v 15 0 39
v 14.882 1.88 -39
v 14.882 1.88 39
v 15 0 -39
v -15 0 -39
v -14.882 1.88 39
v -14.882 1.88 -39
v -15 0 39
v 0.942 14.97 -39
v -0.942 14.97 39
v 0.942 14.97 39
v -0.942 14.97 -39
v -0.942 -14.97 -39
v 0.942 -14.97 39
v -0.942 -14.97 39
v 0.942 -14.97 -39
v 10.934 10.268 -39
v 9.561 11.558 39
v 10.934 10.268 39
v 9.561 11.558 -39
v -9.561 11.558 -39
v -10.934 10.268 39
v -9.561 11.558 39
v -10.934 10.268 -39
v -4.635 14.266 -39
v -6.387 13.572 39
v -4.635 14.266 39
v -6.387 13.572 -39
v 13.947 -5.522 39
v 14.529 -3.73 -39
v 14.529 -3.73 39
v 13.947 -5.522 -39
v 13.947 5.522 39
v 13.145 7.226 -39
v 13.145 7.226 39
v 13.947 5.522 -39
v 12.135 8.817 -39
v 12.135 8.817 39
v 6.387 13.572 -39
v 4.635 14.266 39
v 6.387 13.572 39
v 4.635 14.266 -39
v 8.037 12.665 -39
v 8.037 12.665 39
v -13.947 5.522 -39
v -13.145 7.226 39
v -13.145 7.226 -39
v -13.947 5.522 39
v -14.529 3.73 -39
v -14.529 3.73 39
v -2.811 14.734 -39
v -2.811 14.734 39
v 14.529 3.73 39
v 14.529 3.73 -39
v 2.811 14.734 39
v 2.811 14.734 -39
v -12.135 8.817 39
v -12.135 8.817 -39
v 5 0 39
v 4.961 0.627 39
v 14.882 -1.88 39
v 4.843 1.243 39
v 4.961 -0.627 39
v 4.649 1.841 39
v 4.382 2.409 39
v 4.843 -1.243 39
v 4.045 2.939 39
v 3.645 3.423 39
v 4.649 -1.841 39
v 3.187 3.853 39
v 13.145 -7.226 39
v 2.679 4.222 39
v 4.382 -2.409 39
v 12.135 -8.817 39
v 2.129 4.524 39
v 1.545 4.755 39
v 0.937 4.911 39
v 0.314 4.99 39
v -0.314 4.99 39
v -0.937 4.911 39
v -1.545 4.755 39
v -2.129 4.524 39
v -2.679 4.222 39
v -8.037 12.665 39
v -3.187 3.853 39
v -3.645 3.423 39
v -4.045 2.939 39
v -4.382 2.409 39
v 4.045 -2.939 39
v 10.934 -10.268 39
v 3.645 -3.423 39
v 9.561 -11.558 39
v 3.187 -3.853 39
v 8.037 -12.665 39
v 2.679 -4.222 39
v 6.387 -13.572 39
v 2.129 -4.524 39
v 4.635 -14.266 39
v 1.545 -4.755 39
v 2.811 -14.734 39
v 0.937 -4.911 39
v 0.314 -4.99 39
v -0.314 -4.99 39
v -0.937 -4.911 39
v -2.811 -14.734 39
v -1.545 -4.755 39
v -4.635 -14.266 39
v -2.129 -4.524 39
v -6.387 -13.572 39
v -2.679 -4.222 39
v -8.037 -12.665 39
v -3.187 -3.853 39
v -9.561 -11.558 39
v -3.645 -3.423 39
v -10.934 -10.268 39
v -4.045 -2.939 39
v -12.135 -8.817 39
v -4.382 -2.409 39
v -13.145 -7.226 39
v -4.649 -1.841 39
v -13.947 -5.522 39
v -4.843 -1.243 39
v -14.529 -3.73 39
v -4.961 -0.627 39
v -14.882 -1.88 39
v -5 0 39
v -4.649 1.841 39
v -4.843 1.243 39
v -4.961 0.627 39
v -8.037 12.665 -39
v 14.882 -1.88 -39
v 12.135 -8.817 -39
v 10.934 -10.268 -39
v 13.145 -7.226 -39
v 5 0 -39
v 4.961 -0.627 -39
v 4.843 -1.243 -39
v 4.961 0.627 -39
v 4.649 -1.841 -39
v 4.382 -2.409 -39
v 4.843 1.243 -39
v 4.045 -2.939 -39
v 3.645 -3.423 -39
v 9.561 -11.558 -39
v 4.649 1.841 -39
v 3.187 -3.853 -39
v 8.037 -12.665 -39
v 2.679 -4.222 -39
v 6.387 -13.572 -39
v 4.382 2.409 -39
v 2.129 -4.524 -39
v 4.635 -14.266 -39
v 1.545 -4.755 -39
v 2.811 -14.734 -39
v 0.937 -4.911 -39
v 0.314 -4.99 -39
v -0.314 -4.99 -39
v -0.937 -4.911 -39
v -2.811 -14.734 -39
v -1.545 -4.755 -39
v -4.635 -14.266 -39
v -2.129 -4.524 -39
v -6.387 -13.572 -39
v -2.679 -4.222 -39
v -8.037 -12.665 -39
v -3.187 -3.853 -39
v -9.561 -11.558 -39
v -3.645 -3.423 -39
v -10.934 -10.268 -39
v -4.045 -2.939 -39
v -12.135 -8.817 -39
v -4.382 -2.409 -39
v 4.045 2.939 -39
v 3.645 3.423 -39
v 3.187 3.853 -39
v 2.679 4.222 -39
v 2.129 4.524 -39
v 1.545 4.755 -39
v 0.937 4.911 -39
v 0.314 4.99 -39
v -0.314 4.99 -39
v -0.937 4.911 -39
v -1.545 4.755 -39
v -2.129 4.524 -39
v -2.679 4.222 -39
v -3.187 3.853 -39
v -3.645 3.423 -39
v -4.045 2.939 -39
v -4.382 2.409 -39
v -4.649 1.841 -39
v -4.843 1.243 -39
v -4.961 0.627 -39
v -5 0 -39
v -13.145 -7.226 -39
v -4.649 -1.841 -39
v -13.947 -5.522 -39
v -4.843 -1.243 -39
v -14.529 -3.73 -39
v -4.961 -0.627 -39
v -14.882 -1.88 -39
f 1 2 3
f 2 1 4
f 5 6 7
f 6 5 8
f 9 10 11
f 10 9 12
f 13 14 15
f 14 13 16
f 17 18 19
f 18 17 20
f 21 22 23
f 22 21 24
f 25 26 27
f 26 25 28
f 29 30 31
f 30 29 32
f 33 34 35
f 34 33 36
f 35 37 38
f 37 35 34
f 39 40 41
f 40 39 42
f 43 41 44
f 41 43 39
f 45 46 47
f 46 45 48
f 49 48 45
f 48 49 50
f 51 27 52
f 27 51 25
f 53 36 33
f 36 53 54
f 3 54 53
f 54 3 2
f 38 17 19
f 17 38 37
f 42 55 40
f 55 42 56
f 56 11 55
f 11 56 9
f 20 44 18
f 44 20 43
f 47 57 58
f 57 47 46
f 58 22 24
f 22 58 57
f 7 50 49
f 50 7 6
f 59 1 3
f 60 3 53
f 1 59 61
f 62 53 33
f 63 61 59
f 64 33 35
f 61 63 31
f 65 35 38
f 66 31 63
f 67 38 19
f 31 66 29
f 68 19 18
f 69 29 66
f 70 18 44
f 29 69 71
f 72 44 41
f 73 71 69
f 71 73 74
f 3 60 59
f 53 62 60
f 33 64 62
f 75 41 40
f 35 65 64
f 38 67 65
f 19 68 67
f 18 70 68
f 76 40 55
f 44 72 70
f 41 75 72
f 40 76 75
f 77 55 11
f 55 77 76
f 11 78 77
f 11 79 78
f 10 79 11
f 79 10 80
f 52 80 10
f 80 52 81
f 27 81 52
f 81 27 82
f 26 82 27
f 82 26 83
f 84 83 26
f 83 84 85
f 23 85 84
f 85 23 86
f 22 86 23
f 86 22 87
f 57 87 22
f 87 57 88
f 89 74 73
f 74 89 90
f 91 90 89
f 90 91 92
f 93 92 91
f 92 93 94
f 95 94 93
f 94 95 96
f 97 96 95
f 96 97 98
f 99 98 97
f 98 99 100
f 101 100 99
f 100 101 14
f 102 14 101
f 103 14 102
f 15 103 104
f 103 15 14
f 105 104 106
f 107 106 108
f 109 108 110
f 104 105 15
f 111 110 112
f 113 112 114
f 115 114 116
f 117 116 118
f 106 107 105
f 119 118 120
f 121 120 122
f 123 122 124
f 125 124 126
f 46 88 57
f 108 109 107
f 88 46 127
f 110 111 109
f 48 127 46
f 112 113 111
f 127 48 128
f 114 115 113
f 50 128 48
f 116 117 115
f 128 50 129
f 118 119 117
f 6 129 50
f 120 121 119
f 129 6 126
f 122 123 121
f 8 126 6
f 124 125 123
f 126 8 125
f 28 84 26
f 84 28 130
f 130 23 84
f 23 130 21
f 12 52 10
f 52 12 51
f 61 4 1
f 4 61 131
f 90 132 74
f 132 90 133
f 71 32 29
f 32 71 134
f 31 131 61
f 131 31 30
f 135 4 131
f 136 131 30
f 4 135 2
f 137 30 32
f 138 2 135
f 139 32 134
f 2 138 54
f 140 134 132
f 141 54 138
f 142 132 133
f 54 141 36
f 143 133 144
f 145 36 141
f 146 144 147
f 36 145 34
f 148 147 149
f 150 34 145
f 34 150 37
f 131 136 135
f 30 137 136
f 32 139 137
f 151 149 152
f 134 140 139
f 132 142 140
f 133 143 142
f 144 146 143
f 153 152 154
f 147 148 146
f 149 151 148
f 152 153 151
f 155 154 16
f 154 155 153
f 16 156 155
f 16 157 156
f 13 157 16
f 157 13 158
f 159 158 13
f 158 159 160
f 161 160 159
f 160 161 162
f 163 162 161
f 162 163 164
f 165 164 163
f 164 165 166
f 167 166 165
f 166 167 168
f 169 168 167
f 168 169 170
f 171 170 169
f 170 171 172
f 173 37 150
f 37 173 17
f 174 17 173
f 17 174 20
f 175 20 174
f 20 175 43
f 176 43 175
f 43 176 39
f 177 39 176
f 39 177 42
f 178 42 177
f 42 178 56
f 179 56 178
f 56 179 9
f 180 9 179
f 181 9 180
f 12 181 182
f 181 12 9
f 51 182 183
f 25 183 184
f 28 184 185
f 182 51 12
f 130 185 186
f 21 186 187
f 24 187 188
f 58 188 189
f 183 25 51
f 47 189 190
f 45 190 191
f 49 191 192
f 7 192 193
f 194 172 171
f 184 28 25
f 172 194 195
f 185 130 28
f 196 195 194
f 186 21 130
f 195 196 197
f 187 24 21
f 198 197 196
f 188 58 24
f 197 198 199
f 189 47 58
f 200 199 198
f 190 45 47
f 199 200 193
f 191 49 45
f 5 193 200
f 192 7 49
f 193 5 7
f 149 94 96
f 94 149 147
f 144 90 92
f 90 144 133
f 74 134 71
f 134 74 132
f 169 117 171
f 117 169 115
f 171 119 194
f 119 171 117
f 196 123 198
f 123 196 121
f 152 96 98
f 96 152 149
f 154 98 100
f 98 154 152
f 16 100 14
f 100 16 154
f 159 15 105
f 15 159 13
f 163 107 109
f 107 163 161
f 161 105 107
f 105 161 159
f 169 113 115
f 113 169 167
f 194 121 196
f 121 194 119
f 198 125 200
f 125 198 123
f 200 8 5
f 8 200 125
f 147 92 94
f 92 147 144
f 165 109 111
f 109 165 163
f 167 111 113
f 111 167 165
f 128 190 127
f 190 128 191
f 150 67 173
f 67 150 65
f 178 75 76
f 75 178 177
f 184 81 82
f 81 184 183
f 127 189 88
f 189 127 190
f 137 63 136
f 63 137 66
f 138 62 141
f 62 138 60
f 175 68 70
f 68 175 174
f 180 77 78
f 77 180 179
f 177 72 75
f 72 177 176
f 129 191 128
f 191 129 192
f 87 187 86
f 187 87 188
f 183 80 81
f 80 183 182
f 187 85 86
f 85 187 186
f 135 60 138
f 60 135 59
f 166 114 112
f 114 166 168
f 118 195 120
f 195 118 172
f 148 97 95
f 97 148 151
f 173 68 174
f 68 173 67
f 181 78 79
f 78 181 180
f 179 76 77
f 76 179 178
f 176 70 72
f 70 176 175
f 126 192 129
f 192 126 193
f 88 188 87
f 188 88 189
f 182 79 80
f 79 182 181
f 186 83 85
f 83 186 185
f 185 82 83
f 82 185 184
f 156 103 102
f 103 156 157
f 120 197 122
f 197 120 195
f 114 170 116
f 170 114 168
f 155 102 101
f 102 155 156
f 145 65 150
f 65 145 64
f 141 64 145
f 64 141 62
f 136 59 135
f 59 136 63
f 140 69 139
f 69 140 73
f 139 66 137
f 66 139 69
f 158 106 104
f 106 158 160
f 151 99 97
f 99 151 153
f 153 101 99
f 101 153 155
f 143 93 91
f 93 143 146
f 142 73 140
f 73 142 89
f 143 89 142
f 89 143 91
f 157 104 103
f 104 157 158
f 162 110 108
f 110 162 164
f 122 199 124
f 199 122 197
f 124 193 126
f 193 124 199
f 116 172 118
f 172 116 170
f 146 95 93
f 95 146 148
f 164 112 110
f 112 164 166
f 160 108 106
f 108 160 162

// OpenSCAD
$fn = 50;


difference() {
	union() {
		translate(v = [0, 0, -39.0000000000]) {
			cylinder(h = 78, r = 15.0000000000);
		}
	}
	union() {
		translate(v = [0, 0, -100.0000000000]) {
			cylinder(h = 200, r = 5.0000000000);
		}
	}
}
